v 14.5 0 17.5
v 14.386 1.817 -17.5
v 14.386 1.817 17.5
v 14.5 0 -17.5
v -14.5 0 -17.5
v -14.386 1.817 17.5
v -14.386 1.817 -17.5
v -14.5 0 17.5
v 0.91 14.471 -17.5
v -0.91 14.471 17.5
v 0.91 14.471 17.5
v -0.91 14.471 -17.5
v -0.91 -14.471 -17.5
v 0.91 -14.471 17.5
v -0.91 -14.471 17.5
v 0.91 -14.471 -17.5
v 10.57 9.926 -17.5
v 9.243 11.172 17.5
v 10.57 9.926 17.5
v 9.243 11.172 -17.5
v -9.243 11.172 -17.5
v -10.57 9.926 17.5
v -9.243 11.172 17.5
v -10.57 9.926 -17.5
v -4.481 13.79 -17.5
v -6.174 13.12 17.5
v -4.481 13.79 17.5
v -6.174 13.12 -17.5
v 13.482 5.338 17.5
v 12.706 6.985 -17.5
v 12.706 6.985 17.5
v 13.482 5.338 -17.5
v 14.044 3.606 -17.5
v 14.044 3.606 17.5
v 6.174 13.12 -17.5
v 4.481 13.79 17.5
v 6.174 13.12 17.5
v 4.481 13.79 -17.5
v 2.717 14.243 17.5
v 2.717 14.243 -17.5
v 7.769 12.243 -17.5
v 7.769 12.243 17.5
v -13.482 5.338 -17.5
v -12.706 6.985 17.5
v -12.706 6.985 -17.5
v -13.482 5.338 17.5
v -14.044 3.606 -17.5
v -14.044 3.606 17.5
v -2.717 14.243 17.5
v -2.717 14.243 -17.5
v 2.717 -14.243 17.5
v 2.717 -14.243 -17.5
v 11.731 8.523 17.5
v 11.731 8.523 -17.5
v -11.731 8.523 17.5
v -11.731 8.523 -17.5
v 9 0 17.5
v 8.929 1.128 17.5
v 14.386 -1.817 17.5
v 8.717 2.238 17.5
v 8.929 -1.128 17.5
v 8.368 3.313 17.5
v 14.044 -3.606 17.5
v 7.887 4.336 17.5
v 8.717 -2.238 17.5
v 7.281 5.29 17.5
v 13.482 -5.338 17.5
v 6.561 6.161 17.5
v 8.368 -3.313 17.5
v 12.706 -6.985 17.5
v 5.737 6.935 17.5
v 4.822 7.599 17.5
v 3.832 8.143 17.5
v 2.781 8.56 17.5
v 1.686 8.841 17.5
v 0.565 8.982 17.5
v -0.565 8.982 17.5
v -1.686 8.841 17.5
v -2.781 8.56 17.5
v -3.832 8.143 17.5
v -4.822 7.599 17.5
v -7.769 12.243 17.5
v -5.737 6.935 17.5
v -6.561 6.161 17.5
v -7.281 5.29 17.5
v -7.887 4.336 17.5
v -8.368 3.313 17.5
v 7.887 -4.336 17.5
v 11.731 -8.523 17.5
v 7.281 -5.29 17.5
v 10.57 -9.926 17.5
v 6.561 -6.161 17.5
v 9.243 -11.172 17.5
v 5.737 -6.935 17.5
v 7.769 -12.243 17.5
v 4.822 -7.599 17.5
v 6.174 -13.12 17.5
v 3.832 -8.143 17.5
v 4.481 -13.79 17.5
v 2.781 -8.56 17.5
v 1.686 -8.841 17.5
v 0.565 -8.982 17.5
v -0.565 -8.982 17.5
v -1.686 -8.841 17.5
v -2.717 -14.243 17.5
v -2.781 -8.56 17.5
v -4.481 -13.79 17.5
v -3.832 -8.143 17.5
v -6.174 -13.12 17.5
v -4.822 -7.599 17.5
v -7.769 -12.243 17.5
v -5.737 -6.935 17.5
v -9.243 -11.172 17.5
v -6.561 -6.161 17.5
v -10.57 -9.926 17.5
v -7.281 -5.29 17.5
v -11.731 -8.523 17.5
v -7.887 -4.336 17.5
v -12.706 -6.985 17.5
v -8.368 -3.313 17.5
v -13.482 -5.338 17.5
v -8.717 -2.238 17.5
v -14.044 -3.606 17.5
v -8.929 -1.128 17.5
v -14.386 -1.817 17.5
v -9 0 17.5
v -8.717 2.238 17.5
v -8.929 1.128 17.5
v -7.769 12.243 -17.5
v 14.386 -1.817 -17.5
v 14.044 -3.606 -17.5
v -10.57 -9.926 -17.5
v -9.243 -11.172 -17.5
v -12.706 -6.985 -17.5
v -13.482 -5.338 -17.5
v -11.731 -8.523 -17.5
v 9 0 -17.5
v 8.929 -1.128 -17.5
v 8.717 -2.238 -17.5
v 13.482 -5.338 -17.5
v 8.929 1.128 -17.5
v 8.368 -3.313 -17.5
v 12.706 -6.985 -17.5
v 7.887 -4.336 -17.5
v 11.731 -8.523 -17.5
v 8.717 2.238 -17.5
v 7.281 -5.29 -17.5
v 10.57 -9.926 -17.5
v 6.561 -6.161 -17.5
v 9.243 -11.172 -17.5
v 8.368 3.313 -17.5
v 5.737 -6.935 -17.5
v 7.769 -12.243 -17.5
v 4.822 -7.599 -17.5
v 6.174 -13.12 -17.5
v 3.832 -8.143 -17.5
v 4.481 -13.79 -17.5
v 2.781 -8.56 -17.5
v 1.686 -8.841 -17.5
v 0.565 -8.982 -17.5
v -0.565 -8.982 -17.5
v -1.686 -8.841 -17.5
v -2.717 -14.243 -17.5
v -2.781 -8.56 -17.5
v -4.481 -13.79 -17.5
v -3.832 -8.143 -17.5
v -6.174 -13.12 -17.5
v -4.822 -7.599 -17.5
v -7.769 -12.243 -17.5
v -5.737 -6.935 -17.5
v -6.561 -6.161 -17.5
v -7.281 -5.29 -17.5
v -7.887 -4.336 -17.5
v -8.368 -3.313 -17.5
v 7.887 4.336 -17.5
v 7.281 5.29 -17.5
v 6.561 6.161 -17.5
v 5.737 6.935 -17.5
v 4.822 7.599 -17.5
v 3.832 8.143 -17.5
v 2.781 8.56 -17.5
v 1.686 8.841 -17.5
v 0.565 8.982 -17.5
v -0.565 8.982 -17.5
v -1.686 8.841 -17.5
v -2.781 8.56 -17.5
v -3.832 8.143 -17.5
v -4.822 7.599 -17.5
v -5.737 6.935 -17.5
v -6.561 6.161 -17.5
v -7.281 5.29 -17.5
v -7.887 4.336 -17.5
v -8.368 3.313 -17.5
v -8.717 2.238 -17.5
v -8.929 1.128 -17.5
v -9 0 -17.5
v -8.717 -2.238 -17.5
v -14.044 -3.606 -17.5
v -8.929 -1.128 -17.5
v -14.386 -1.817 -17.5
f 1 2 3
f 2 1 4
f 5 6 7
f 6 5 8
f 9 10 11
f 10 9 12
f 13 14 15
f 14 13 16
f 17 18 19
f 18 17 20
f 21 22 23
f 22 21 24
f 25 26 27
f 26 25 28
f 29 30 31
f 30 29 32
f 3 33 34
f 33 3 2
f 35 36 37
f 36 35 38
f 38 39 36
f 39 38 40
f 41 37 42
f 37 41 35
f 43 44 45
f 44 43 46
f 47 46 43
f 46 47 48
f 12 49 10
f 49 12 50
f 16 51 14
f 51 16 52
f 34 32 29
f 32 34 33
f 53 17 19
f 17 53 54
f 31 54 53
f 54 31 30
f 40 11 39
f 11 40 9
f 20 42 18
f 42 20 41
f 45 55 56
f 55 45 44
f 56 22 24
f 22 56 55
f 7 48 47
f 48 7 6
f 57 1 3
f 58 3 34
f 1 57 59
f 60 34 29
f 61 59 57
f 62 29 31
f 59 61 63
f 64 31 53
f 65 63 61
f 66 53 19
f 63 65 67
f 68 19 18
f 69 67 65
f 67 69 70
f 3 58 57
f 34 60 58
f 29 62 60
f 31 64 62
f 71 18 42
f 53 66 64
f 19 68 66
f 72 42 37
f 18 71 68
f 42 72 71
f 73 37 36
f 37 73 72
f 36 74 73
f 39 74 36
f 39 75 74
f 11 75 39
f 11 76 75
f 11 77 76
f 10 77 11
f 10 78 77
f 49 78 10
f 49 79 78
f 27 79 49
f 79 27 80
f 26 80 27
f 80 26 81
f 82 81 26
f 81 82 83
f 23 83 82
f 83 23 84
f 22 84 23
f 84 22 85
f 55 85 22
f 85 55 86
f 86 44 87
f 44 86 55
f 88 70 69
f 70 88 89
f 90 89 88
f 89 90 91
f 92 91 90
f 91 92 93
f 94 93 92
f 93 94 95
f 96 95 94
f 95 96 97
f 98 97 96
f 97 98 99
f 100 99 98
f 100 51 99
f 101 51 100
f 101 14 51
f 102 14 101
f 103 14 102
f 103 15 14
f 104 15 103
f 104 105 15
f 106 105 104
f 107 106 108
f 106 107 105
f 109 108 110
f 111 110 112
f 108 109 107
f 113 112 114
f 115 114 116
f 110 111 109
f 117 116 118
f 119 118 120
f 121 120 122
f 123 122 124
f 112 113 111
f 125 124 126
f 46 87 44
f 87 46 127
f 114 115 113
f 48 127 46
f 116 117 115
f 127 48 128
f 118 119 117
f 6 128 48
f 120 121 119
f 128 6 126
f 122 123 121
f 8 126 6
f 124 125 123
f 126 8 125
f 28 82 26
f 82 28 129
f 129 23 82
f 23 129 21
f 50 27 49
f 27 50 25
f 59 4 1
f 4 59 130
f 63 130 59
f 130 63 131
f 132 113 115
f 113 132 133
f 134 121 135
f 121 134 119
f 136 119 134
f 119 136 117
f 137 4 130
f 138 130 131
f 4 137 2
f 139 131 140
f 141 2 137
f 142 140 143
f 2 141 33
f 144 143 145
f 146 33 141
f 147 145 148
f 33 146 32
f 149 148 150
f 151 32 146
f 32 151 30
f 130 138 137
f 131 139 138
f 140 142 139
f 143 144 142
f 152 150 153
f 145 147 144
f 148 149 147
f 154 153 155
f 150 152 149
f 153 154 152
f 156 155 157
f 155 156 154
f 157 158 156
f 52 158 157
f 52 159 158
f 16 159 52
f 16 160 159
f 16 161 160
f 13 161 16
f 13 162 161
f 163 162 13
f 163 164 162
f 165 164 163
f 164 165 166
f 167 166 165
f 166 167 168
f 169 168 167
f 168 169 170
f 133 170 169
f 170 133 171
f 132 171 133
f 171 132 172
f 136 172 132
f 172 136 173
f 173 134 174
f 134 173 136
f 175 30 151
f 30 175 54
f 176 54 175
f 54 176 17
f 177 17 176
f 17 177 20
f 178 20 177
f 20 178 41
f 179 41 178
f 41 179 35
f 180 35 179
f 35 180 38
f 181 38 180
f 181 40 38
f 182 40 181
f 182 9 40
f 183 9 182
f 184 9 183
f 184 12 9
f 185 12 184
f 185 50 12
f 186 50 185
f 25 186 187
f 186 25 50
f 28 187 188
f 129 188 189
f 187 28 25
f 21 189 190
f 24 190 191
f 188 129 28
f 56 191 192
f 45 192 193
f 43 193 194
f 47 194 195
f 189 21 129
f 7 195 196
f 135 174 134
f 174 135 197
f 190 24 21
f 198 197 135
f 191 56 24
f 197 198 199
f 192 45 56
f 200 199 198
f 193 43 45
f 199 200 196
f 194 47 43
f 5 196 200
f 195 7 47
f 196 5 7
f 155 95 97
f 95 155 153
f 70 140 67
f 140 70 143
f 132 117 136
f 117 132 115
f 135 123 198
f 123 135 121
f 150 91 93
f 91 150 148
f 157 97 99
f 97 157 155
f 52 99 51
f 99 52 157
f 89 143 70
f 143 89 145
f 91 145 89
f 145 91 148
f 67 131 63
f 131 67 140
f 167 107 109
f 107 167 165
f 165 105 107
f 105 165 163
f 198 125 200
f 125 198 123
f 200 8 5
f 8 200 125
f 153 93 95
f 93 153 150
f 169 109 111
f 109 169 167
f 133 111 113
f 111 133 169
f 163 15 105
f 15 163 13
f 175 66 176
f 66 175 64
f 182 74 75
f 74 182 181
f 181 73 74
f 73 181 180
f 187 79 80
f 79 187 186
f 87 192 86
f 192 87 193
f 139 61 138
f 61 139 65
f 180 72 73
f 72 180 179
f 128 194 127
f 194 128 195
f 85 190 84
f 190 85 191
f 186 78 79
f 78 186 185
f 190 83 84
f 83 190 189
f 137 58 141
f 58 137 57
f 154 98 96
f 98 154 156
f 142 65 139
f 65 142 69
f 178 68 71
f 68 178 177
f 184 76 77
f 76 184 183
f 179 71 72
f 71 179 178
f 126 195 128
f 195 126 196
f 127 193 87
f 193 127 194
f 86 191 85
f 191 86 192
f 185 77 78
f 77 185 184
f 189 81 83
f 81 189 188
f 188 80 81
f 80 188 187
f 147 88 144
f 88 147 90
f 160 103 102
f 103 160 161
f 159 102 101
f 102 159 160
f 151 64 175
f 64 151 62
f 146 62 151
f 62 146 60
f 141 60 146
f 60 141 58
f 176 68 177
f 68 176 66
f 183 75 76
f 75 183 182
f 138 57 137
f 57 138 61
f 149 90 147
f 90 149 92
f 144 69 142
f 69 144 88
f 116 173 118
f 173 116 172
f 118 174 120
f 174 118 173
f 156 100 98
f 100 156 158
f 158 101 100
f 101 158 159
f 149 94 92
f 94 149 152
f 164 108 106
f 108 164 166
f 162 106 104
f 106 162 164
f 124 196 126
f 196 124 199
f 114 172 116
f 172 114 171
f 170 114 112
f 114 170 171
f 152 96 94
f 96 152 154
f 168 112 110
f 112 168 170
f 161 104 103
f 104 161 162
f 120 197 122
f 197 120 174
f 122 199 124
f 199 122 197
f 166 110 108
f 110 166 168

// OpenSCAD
$fn = 50;


difference() {
	union() {
		translate(v = [0, 0, -17.5000000000]) {
			cylinder(h = 35, r = 14.5000000000);
		}
	}
	union() {
		translate(v = [0, 0, -100.0000000000]) {
			cylinder(h = 200, r = 9);
		}
	}
}
